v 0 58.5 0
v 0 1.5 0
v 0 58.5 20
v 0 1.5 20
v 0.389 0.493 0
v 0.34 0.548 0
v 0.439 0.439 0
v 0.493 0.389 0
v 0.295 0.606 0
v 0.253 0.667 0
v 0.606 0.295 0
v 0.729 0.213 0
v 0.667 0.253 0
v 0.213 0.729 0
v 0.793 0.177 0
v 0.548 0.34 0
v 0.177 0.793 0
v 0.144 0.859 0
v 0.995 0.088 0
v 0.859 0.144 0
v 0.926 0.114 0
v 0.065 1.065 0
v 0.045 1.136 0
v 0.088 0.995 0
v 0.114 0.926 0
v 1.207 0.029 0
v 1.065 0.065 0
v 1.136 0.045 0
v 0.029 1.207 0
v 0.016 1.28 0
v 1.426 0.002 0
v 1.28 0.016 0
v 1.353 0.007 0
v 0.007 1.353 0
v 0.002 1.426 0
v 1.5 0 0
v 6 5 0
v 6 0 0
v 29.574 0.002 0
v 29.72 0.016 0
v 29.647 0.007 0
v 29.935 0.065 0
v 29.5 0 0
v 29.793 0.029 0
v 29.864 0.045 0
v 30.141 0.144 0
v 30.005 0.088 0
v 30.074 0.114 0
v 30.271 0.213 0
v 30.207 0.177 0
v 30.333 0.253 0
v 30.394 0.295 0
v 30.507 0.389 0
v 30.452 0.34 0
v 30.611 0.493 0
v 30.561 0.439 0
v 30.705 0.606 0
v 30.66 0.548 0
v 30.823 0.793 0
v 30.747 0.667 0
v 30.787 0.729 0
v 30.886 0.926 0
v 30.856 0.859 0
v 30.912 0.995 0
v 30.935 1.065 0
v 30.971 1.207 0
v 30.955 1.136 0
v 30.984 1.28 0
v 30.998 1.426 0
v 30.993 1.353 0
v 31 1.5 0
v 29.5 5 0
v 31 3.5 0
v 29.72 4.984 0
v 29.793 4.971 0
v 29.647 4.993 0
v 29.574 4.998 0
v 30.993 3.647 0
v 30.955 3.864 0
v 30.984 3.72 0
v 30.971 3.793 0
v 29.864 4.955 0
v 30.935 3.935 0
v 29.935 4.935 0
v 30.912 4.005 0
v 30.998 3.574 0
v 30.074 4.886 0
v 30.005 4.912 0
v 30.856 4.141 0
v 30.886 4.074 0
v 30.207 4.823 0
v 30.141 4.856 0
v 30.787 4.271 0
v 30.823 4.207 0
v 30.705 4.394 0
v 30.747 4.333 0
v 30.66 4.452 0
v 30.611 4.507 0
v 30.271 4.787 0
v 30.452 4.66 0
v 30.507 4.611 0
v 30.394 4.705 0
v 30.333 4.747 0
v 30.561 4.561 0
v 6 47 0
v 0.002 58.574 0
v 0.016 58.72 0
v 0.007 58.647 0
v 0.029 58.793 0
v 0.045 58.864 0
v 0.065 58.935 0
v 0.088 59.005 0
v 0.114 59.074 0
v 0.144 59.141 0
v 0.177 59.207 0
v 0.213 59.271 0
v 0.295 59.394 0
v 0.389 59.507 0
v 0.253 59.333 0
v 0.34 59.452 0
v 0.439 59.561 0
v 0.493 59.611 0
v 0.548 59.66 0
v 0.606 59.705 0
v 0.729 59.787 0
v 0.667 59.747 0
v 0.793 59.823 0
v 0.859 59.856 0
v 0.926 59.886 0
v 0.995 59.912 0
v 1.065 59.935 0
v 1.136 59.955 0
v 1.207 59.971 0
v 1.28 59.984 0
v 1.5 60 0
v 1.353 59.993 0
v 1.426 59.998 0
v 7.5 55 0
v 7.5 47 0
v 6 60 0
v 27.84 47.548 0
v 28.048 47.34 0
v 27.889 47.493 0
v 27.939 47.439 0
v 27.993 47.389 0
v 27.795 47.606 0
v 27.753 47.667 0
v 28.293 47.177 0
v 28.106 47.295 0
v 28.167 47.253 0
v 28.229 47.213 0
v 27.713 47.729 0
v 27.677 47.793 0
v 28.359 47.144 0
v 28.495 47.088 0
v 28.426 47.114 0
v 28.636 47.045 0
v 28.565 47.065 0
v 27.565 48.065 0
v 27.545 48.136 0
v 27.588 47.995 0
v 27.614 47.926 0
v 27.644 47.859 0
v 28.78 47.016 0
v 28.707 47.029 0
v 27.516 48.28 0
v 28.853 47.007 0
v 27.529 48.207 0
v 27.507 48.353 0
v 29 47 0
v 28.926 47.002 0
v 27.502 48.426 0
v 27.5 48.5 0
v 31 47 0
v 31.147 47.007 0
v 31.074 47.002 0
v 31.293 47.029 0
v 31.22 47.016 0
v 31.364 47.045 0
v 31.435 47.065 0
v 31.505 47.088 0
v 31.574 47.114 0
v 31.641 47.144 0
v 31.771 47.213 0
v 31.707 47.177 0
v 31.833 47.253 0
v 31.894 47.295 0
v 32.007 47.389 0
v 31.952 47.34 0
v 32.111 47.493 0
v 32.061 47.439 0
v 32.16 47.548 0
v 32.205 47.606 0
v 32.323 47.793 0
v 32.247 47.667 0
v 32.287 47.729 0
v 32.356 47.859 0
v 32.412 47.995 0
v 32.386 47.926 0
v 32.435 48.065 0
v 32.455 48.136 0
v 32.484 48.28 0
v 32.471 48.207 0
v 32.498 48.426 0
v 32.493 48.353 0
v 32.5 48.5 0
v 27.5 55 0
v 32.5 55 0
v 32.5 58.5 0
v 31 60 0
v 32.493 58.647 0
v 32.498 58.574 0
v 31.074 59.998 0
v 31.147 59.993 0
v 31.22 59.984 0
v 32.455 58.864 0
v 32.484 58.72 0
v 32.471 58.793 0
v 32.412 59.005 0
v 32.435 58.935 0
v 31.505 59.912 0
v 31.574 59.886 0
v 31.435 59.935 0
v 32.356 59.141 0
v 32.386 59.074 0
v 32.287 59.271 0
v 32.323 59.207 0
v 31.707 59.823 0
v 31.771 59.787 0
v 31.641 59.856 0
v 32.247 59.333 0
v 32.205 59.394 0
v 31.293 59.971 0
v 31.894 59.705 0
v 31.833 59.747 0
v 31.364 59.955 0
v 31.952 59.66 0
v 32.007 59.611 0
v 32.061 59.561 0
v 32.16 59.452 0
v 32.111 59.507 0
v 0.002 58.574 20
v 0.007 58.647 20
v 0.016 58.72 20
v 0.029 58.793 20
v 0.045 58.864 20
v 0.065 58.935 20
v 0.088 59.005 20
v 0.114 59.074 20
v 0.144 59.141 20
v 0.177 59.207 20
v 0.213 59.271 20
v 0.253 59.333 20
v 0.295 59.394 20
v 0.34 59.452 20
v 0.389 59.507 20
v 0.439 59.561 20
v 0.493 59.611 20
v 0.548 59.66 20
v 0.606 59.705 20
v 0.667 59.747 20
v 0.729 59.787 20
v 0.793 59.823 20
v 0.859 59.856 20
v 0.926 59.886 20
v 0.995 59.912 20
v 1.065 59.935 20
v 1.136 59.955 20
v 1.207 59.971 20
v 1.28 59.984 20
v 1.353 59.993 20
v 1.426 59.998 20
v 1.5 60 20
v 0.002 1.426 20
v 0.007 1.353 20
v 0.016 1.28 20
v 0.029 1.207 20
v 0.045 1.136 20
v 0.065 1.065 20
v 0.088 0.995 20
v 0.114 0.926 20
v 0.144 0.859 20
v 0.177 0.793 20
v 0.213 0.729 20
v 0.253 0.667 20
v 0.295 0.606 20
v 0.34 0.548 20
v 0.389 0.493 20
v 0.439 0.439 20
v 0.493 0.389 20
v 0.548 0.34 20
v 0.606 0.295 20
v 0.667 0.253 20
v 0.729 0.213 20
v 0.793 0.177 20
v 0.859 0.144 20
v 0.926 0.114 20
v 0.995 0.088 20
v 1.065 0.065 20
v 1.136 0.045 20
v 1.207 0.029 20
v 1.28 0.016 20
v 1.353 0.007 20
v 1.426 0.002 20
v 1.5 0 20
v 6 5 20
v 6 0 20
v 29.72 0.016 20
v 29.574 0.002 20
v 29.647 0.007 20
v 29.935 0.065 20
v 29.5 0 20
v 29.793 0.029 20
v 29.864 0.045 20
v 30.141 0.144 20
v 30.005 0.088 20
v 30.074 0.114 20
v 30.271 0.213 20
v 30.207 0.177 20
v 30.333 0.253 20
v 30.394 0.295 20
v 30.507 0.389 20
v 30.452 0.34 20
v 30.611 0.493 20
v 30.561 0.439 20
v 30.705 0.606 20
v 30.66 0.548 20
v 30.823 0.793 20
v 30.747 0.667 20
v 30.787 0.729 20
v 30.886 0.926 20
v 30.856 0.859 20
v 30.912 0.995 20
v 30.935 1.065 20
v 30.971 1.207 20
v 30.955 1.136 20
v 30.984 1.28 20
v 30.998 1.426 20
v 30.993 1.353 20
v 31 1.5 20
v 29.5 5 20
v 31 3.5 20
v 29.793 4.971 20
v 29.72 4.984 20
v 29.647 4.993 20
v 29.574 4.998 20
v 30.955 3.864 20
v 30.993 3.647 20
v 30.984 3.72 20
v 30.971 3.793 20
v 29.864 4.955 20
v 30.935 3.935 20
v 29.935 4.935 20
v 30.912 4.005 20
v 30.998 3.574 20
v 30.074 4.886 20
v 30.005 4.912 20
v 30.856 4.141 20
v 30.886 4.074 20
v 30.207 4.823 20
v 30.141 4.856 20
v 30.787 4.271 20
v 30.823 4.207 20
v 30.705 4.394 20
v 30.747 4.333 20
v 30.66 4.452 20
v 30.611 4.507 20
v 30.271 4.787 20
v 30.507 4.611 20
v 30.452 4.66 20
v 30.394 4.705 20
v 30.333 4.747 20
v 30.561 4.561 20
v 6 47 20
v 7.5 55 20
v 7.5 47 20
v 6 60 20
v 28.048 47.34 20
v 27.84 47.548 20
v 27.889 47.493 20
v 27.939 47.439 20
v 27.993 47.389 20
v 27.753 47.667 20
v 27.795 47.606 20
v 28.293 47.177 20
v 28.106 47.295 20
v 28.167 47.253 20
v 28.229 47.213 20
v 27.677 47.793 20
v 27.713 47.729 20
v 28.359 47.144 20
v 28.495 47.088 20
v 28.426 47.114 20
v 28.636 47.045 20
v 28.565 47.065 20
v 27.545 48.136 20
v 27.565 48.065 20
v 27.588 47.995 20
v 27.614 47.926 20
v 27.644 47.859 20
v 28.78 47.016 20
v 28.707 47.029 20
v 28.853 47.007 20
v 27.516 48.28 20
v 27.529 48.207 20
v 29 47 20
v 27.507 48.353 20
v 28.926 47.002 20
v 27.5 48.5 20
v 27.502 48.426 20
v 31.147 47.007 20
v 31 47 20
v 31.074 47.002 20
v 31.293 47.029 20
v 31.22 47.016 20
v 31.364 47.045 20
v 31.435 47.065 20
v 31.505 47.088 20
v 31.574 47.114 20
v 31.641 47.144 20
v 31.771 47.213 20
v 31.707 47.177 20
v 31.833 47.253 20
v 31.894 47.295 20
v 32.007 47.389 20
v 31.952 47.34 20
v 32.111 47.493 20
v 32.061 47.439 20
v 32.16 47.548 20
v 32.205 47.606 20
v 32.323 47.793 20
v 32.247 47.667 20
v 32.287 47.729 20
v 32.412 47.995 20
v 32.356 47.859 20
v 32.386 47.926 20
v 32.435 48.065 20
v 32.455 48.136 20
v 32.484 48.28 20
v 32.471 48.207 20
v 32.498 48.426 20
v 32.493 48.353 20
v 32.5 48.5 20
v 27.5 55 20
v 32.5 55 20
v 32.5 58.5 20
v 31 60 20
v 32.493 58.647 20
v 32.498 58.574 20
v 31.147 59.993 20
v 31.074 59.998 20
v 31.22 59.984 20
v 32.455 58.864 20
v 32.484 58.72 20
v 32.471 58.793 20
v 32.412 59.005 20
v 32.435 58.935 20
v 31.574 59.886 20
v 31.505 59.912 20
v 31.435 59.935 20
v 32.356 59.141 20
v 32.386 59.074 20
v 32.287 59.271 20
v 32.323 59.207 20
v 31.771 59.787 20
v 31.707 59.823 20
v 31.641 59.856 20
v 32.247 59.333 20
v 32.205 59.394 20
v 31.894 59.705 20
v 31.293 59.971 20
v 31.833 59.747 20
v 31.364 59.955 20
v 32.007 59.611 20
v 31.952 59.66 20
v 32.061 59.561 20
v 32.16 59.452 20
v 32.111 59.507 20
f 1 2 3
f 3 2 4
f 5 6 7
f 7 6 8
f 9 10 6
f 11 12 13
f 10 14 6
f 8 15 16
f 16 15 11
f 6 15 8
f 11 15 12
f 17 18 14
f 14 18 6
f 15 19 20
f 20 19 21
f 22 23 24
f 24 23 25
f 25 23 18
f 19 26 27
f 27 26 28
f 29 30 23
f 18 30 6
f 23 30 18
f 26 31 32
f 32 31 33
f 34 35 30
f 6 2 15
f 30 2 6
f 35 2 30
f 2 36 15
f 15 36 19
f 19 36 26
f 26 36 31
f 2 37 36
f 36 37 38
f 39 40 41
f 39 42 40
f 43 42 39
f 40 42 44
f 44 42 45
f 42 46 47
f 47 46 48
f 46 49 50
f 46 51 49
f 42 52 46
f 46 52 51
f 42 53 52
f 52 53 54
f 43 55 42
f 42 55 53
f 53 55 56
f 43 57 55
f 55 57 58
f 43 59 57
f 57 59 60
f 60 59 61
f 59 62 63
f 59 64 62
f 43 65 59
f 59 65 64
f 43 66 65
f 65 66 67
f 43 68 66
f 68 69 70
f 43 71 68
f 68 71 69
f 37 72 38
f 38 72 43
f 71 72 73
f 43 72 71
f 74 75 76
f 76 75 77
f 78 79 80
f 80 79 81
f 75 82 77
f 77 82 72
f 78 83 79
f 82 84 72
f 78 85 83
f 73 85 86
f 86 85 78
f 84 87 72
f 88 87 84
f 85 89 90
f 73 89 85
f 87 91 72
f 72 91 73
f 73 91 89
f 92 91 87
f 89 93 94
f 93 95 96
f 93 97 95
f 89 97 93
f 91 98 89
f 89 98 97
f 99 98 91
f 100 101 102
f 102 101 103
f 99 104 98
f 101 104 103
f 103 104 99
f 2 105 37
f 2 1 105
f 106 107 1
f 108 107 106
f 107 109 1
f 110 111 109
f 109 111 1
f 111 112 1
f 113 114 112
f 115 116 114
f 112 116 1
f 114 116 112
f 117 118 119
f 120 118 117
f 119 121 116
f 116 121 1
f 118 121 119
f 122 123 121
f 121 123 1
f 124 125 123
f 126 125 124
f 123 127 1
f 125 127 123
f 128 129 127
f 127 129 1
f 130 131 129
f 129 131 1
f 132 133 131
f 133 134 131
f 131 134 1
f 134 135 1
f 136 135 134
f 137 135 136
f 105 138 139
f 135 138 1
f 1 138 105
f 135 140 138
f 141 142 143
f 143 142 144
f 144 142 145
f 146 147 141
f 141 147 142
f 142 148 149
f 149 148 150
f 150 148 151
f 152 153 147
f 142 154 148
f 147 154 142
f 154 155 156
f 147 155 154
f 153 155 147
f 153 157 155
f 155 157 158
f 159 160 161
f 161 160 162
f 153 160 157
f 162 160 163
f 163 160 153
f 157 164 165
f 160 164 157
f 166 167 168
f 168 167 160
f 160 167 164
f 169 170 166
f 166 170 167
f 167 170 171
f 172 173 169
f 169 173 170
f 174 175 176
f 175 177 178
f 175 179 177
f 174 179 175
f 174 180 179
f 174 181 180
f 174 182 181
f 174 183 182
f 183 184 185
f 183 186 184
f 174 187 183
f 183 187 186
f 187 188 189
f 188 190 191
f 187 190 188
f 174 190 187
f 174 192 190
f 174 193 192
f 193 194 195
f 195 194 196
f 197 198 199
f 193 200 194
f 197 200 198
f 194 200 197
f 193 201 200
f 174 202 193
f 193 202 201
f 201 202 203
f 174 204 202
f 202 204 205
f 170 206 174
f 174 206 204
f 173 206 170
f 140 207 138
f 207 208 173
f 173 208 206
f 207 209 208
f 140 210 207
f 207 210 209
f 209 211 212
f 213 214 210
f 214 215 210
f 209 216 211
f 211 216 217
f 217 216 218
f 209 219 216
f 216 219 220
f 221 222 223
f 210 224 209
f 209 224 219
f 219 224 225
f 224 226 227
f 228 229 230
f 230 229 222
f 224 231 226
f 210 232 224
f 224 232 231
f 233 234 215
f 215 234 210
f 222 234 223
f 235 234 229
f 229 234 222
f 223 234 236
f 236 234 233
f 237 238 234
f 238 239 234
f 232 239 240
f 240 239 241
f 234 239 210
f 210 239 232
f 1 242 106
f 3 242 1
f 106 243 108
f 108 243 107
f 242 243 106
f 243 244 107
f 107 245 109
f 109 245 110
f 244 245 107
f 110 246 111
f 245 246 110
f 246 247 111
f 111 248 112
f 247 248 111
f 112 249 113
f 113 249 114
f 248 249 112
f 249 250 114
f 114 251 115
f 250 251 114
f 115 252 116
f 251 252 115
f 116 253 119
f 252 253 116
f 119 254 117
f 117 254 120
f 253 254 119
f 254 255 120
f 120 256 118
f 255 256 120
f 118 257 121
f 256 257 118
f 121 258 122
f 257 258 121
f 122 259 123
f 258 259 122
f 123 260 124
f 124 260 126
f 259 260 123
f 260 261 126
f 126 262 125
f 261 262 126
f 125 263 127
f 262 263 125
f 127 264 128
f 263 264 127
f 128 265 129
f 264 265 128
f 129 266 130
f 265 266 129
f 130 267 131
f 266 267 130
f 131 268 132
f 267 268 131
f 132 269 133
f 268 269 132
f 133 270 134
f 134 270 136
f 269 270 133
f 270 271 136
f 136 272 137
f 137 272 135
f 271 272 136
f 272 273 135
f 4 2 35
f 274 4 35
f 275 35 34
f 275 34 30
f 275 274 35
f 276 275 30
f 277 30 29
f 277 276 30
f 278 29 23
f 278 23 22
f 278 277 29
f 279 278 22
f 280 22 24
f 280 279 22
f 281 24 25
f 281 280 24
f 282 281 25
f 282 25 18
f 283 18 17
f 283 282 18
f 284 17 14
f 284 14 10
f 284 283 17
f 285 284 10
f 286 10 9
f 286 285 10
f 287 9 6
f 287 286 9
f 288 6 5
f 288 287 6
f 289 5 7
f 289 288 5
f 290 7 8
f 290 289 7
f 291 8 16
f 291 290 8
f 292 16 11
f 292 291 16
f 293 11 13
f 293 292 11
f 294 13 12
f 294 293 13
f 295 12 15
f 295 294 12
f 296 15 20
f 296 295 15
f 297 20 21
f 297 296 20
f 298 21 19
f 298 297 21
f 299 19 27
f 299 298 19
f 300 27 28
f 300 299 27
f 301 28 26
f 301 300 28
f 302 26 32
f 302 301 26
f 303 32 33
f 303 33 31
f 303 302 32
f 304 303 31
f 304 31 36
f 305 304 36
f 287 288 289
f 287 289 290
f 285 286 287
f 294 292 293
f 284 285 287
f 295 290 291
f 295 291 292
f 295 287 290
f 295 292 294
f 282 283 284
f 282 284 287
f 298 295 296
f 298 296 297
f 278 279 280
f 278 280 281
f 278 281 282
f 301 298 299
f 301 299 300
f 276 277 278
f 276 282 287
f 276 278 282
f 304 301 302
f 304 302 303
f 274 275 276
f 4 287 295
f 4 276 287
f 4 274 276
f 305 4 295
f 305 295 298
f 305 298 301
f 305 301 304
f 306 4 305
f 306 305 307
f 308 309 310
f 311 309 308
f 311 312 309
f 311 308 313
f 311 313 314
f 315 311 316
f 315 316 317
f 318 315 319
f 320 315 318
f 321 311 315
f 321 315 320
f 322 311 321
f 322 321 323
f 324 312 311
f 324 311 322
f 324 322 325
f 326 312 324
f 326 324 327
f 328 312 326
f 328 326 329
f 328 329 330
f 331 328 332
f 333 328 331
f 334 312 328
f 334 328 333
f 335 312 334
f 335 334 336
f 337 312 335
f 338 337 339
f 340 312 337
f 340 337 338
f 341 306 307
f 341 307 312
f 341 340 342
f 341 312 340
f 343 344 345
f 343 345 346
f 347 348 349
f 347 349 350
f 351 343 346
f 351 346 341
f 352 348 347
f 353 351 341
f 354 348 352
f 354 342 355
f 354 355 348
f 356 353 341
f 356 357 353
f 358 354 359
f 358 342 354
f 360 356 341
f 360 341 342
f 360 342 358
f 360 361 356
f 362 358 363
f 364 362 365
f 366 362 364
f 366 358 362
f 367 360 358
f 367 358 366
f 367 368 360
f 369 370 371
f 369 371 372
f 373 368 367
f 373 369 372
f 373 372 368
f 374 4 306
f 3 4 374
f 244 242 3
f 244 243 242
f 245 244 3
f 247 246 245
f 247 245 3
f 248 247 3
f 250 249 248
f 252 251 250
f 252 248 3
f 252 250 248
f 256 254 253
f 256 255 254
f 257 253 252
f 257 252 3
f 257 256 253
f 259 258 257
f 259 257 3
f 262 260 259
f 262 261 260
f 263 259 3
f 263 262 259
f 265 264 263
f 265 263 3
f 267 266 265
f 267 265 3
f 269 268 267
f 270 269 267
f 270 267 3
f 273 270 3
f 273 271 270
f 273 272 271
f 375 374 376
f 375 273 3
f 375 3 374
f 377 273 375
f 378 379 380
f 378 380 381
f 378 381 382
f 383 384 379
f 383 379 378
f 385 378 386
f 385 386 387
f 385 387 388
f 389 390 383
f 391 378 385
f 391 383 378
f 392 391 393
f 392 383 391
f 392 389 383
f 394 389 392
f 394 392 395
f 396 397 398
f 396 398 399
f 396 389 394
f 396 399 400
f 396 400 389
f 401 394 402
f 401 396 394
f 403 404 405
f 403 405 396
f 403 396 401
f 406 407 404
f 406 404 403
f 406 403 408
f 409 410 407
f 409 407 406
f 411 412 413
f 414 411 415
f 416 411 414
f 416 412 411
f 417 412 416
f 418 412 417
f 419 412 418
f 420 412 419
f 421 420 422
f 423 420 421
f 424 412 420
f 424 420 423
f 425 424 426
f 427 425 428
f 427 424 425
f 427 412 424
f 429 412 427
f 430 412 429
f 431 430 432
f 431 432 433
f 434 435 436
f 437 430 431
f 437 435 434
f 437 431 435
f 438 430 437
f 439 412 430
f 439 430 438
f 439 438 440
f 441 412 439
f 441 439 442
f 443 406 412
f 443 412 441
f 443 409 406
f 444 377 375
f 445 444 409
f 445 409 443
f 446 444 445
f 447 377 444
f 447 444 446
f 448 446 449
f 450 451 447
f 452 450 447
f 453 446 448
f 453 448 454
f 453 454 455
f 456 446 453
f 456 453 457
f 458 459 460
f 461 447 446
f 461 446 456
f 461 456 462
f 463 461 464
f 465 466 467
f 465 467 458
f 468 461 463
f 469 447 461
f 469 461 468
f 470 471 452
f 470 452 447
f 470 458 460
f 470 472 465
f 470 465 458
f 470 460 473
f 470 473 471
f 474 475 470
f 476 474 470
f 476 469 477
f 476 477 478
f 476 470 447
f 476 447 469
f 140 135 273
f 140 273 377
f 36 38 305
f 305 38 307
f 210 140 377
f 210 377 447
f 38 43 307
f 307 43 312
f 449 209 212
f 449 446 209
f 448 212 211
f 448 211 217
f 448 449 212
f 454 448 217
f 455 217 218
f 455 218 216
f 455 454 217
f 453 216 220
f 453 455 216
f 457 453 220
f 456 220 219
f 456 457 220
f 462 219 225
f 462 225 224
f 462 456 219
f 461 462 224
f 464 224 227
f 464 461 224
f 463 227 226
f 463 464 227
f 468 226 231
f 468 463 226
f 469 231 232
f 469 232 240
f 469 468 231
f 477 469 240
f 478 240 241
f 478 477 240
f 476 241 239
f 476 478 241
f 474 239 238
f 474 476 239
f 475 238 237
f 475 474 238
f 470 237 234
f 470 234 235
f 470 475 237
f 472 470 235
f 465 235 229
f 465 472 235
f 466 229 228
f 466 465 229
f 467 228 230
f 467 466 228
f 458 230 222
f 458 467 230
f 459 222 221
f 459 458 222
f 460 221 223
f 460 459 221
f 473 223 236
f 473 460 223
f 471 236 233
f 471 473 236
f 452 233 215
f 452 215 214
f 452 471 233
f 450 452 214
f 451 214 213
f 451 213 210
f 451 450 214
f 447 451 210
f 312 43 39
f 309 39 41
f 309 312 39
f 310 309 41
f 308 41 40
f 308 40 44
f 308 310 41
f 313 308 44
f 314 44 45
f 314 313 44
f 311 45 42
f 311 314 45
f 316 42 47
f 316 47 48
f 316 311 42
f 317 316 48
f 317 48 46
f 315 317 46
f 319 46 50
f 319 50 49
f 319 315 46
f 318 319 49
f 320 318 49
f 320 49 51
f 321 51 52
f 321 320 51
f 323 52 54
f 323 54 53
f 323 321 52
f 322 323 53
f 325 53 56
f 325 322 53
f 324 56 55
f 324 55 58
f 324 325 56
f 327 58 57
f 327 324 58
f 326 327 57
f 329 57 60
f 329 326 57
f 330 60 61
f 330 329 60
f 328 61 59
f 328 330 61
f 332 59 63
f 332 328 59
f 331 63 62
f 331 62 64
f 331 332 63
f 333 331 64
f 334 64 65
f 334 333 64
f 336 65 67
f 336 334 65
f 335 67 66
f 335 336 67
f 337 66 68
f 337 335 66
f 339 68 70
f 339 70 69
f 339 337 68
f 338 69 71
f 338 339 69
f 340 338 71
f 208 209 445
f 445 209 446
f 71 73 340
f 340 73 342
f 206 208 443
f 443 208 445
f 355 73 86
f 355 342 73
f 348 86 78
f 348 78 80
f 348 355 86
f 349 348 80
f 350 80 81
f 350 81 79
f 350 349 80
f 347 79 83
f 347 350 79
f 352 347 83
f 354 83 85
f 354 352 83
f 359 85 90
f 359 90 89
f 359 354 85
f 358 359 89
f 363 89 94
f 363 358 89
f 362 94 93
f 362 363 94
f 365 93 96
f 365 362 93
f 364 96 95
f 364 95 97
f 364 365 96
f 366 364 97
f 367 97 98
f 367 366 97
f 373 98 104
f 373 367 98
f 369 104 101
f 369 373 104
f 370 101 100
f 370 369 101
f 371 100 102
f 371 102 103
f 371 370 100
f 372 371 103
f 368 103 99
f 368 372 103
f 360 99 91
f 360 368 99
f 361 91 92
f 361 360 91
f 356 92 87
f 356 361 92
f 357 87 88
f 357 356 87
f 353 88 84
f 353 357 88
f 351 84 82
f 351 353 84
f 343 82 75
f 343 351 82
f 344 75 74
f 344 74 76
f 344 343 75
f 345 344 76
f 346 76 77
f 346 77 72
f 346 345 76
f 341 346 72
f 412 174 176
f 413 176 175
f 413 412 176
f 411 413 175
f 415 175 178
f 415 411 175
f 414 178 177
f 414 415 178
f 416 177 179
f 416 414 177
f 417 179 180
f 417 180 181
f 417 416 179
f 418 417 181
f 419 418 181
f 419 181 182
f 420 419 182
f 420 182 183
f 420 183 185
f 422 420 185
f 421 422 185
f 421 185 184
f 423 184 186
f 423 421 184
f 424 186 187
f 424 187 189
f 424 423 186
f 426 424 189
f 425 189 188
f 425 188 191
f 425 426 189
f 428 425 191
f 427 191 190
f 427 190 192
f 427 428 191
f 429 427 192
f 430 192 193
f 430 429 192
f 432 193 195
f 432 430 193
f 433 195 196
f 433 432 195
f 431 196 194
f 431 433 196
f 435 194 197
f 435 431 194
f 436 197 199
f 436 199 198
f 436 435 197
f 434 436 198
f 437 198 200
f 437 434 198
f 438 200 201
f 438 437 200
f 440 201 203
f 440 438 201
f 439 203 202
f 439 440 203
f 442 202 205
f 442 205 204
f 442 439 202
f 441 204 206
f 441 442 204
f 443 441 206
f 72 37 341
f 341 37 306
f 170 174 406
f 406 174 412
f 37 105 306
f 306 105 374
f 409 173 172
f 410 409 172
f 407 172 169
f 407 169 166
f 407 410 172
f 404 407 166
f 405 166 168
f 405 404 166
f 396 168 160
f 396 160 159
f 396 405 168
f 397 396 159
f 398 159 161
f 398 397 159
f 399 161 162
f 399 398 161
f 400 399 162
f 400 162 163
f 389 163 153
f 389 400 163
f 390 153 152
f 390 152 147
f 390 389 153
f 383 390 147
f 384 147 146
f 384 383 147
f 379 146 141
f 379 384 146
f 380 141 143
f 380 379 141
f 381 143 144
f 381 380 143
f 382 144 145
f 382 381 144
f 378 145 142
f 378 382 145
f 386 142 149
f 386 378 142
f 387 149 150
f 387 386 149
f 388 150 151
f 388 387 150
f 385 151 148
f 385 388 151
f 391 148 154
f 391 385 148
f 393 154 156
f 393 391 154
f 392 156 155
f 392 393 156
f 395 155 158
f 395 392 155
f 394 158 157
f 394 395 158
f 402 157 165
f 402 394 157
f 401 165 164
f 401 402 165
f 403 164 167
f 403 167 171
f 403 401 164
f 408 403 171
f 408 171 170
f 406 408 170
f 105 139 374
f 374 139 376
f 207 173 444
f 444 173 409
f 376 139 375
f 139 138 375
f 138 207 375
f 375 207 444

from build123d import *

# Parameters (mm, degrees)
EXTRUDE_DEPTH = 20
FILLET_R      = 1.5


with BuildPart() as part:
    # Sketch → Extrude (new body)
    with BuildSketch(Plane.XY):
        Polygon((31, 0), (31, 5), (6, 5), (6, 47), (7.5, 47), (7.5, 55), (27.5, 55), (27.5, 47), (32.5, 47), (32.5, 55), (32.5, 60), (6, 60), (0, 60), (0, 0), (6, 0), align=None)
    extrude(amount=EXTRUDE_DEPTH)

    # Fillet
    fillet_edges = [part.edges().sort_by_distance(p)[0] for p in [
        (0, 60, 10),
        (0, 0, 10),
        (31, 0, 10),
        (31, 5, 10),
        (27.5, 47, 10),
        (32.5, 47, 10),
        (32.5, 60, 10),
    ]]
    fillet(fillet_edges, radius=FILLET_R)


solid = part.part
